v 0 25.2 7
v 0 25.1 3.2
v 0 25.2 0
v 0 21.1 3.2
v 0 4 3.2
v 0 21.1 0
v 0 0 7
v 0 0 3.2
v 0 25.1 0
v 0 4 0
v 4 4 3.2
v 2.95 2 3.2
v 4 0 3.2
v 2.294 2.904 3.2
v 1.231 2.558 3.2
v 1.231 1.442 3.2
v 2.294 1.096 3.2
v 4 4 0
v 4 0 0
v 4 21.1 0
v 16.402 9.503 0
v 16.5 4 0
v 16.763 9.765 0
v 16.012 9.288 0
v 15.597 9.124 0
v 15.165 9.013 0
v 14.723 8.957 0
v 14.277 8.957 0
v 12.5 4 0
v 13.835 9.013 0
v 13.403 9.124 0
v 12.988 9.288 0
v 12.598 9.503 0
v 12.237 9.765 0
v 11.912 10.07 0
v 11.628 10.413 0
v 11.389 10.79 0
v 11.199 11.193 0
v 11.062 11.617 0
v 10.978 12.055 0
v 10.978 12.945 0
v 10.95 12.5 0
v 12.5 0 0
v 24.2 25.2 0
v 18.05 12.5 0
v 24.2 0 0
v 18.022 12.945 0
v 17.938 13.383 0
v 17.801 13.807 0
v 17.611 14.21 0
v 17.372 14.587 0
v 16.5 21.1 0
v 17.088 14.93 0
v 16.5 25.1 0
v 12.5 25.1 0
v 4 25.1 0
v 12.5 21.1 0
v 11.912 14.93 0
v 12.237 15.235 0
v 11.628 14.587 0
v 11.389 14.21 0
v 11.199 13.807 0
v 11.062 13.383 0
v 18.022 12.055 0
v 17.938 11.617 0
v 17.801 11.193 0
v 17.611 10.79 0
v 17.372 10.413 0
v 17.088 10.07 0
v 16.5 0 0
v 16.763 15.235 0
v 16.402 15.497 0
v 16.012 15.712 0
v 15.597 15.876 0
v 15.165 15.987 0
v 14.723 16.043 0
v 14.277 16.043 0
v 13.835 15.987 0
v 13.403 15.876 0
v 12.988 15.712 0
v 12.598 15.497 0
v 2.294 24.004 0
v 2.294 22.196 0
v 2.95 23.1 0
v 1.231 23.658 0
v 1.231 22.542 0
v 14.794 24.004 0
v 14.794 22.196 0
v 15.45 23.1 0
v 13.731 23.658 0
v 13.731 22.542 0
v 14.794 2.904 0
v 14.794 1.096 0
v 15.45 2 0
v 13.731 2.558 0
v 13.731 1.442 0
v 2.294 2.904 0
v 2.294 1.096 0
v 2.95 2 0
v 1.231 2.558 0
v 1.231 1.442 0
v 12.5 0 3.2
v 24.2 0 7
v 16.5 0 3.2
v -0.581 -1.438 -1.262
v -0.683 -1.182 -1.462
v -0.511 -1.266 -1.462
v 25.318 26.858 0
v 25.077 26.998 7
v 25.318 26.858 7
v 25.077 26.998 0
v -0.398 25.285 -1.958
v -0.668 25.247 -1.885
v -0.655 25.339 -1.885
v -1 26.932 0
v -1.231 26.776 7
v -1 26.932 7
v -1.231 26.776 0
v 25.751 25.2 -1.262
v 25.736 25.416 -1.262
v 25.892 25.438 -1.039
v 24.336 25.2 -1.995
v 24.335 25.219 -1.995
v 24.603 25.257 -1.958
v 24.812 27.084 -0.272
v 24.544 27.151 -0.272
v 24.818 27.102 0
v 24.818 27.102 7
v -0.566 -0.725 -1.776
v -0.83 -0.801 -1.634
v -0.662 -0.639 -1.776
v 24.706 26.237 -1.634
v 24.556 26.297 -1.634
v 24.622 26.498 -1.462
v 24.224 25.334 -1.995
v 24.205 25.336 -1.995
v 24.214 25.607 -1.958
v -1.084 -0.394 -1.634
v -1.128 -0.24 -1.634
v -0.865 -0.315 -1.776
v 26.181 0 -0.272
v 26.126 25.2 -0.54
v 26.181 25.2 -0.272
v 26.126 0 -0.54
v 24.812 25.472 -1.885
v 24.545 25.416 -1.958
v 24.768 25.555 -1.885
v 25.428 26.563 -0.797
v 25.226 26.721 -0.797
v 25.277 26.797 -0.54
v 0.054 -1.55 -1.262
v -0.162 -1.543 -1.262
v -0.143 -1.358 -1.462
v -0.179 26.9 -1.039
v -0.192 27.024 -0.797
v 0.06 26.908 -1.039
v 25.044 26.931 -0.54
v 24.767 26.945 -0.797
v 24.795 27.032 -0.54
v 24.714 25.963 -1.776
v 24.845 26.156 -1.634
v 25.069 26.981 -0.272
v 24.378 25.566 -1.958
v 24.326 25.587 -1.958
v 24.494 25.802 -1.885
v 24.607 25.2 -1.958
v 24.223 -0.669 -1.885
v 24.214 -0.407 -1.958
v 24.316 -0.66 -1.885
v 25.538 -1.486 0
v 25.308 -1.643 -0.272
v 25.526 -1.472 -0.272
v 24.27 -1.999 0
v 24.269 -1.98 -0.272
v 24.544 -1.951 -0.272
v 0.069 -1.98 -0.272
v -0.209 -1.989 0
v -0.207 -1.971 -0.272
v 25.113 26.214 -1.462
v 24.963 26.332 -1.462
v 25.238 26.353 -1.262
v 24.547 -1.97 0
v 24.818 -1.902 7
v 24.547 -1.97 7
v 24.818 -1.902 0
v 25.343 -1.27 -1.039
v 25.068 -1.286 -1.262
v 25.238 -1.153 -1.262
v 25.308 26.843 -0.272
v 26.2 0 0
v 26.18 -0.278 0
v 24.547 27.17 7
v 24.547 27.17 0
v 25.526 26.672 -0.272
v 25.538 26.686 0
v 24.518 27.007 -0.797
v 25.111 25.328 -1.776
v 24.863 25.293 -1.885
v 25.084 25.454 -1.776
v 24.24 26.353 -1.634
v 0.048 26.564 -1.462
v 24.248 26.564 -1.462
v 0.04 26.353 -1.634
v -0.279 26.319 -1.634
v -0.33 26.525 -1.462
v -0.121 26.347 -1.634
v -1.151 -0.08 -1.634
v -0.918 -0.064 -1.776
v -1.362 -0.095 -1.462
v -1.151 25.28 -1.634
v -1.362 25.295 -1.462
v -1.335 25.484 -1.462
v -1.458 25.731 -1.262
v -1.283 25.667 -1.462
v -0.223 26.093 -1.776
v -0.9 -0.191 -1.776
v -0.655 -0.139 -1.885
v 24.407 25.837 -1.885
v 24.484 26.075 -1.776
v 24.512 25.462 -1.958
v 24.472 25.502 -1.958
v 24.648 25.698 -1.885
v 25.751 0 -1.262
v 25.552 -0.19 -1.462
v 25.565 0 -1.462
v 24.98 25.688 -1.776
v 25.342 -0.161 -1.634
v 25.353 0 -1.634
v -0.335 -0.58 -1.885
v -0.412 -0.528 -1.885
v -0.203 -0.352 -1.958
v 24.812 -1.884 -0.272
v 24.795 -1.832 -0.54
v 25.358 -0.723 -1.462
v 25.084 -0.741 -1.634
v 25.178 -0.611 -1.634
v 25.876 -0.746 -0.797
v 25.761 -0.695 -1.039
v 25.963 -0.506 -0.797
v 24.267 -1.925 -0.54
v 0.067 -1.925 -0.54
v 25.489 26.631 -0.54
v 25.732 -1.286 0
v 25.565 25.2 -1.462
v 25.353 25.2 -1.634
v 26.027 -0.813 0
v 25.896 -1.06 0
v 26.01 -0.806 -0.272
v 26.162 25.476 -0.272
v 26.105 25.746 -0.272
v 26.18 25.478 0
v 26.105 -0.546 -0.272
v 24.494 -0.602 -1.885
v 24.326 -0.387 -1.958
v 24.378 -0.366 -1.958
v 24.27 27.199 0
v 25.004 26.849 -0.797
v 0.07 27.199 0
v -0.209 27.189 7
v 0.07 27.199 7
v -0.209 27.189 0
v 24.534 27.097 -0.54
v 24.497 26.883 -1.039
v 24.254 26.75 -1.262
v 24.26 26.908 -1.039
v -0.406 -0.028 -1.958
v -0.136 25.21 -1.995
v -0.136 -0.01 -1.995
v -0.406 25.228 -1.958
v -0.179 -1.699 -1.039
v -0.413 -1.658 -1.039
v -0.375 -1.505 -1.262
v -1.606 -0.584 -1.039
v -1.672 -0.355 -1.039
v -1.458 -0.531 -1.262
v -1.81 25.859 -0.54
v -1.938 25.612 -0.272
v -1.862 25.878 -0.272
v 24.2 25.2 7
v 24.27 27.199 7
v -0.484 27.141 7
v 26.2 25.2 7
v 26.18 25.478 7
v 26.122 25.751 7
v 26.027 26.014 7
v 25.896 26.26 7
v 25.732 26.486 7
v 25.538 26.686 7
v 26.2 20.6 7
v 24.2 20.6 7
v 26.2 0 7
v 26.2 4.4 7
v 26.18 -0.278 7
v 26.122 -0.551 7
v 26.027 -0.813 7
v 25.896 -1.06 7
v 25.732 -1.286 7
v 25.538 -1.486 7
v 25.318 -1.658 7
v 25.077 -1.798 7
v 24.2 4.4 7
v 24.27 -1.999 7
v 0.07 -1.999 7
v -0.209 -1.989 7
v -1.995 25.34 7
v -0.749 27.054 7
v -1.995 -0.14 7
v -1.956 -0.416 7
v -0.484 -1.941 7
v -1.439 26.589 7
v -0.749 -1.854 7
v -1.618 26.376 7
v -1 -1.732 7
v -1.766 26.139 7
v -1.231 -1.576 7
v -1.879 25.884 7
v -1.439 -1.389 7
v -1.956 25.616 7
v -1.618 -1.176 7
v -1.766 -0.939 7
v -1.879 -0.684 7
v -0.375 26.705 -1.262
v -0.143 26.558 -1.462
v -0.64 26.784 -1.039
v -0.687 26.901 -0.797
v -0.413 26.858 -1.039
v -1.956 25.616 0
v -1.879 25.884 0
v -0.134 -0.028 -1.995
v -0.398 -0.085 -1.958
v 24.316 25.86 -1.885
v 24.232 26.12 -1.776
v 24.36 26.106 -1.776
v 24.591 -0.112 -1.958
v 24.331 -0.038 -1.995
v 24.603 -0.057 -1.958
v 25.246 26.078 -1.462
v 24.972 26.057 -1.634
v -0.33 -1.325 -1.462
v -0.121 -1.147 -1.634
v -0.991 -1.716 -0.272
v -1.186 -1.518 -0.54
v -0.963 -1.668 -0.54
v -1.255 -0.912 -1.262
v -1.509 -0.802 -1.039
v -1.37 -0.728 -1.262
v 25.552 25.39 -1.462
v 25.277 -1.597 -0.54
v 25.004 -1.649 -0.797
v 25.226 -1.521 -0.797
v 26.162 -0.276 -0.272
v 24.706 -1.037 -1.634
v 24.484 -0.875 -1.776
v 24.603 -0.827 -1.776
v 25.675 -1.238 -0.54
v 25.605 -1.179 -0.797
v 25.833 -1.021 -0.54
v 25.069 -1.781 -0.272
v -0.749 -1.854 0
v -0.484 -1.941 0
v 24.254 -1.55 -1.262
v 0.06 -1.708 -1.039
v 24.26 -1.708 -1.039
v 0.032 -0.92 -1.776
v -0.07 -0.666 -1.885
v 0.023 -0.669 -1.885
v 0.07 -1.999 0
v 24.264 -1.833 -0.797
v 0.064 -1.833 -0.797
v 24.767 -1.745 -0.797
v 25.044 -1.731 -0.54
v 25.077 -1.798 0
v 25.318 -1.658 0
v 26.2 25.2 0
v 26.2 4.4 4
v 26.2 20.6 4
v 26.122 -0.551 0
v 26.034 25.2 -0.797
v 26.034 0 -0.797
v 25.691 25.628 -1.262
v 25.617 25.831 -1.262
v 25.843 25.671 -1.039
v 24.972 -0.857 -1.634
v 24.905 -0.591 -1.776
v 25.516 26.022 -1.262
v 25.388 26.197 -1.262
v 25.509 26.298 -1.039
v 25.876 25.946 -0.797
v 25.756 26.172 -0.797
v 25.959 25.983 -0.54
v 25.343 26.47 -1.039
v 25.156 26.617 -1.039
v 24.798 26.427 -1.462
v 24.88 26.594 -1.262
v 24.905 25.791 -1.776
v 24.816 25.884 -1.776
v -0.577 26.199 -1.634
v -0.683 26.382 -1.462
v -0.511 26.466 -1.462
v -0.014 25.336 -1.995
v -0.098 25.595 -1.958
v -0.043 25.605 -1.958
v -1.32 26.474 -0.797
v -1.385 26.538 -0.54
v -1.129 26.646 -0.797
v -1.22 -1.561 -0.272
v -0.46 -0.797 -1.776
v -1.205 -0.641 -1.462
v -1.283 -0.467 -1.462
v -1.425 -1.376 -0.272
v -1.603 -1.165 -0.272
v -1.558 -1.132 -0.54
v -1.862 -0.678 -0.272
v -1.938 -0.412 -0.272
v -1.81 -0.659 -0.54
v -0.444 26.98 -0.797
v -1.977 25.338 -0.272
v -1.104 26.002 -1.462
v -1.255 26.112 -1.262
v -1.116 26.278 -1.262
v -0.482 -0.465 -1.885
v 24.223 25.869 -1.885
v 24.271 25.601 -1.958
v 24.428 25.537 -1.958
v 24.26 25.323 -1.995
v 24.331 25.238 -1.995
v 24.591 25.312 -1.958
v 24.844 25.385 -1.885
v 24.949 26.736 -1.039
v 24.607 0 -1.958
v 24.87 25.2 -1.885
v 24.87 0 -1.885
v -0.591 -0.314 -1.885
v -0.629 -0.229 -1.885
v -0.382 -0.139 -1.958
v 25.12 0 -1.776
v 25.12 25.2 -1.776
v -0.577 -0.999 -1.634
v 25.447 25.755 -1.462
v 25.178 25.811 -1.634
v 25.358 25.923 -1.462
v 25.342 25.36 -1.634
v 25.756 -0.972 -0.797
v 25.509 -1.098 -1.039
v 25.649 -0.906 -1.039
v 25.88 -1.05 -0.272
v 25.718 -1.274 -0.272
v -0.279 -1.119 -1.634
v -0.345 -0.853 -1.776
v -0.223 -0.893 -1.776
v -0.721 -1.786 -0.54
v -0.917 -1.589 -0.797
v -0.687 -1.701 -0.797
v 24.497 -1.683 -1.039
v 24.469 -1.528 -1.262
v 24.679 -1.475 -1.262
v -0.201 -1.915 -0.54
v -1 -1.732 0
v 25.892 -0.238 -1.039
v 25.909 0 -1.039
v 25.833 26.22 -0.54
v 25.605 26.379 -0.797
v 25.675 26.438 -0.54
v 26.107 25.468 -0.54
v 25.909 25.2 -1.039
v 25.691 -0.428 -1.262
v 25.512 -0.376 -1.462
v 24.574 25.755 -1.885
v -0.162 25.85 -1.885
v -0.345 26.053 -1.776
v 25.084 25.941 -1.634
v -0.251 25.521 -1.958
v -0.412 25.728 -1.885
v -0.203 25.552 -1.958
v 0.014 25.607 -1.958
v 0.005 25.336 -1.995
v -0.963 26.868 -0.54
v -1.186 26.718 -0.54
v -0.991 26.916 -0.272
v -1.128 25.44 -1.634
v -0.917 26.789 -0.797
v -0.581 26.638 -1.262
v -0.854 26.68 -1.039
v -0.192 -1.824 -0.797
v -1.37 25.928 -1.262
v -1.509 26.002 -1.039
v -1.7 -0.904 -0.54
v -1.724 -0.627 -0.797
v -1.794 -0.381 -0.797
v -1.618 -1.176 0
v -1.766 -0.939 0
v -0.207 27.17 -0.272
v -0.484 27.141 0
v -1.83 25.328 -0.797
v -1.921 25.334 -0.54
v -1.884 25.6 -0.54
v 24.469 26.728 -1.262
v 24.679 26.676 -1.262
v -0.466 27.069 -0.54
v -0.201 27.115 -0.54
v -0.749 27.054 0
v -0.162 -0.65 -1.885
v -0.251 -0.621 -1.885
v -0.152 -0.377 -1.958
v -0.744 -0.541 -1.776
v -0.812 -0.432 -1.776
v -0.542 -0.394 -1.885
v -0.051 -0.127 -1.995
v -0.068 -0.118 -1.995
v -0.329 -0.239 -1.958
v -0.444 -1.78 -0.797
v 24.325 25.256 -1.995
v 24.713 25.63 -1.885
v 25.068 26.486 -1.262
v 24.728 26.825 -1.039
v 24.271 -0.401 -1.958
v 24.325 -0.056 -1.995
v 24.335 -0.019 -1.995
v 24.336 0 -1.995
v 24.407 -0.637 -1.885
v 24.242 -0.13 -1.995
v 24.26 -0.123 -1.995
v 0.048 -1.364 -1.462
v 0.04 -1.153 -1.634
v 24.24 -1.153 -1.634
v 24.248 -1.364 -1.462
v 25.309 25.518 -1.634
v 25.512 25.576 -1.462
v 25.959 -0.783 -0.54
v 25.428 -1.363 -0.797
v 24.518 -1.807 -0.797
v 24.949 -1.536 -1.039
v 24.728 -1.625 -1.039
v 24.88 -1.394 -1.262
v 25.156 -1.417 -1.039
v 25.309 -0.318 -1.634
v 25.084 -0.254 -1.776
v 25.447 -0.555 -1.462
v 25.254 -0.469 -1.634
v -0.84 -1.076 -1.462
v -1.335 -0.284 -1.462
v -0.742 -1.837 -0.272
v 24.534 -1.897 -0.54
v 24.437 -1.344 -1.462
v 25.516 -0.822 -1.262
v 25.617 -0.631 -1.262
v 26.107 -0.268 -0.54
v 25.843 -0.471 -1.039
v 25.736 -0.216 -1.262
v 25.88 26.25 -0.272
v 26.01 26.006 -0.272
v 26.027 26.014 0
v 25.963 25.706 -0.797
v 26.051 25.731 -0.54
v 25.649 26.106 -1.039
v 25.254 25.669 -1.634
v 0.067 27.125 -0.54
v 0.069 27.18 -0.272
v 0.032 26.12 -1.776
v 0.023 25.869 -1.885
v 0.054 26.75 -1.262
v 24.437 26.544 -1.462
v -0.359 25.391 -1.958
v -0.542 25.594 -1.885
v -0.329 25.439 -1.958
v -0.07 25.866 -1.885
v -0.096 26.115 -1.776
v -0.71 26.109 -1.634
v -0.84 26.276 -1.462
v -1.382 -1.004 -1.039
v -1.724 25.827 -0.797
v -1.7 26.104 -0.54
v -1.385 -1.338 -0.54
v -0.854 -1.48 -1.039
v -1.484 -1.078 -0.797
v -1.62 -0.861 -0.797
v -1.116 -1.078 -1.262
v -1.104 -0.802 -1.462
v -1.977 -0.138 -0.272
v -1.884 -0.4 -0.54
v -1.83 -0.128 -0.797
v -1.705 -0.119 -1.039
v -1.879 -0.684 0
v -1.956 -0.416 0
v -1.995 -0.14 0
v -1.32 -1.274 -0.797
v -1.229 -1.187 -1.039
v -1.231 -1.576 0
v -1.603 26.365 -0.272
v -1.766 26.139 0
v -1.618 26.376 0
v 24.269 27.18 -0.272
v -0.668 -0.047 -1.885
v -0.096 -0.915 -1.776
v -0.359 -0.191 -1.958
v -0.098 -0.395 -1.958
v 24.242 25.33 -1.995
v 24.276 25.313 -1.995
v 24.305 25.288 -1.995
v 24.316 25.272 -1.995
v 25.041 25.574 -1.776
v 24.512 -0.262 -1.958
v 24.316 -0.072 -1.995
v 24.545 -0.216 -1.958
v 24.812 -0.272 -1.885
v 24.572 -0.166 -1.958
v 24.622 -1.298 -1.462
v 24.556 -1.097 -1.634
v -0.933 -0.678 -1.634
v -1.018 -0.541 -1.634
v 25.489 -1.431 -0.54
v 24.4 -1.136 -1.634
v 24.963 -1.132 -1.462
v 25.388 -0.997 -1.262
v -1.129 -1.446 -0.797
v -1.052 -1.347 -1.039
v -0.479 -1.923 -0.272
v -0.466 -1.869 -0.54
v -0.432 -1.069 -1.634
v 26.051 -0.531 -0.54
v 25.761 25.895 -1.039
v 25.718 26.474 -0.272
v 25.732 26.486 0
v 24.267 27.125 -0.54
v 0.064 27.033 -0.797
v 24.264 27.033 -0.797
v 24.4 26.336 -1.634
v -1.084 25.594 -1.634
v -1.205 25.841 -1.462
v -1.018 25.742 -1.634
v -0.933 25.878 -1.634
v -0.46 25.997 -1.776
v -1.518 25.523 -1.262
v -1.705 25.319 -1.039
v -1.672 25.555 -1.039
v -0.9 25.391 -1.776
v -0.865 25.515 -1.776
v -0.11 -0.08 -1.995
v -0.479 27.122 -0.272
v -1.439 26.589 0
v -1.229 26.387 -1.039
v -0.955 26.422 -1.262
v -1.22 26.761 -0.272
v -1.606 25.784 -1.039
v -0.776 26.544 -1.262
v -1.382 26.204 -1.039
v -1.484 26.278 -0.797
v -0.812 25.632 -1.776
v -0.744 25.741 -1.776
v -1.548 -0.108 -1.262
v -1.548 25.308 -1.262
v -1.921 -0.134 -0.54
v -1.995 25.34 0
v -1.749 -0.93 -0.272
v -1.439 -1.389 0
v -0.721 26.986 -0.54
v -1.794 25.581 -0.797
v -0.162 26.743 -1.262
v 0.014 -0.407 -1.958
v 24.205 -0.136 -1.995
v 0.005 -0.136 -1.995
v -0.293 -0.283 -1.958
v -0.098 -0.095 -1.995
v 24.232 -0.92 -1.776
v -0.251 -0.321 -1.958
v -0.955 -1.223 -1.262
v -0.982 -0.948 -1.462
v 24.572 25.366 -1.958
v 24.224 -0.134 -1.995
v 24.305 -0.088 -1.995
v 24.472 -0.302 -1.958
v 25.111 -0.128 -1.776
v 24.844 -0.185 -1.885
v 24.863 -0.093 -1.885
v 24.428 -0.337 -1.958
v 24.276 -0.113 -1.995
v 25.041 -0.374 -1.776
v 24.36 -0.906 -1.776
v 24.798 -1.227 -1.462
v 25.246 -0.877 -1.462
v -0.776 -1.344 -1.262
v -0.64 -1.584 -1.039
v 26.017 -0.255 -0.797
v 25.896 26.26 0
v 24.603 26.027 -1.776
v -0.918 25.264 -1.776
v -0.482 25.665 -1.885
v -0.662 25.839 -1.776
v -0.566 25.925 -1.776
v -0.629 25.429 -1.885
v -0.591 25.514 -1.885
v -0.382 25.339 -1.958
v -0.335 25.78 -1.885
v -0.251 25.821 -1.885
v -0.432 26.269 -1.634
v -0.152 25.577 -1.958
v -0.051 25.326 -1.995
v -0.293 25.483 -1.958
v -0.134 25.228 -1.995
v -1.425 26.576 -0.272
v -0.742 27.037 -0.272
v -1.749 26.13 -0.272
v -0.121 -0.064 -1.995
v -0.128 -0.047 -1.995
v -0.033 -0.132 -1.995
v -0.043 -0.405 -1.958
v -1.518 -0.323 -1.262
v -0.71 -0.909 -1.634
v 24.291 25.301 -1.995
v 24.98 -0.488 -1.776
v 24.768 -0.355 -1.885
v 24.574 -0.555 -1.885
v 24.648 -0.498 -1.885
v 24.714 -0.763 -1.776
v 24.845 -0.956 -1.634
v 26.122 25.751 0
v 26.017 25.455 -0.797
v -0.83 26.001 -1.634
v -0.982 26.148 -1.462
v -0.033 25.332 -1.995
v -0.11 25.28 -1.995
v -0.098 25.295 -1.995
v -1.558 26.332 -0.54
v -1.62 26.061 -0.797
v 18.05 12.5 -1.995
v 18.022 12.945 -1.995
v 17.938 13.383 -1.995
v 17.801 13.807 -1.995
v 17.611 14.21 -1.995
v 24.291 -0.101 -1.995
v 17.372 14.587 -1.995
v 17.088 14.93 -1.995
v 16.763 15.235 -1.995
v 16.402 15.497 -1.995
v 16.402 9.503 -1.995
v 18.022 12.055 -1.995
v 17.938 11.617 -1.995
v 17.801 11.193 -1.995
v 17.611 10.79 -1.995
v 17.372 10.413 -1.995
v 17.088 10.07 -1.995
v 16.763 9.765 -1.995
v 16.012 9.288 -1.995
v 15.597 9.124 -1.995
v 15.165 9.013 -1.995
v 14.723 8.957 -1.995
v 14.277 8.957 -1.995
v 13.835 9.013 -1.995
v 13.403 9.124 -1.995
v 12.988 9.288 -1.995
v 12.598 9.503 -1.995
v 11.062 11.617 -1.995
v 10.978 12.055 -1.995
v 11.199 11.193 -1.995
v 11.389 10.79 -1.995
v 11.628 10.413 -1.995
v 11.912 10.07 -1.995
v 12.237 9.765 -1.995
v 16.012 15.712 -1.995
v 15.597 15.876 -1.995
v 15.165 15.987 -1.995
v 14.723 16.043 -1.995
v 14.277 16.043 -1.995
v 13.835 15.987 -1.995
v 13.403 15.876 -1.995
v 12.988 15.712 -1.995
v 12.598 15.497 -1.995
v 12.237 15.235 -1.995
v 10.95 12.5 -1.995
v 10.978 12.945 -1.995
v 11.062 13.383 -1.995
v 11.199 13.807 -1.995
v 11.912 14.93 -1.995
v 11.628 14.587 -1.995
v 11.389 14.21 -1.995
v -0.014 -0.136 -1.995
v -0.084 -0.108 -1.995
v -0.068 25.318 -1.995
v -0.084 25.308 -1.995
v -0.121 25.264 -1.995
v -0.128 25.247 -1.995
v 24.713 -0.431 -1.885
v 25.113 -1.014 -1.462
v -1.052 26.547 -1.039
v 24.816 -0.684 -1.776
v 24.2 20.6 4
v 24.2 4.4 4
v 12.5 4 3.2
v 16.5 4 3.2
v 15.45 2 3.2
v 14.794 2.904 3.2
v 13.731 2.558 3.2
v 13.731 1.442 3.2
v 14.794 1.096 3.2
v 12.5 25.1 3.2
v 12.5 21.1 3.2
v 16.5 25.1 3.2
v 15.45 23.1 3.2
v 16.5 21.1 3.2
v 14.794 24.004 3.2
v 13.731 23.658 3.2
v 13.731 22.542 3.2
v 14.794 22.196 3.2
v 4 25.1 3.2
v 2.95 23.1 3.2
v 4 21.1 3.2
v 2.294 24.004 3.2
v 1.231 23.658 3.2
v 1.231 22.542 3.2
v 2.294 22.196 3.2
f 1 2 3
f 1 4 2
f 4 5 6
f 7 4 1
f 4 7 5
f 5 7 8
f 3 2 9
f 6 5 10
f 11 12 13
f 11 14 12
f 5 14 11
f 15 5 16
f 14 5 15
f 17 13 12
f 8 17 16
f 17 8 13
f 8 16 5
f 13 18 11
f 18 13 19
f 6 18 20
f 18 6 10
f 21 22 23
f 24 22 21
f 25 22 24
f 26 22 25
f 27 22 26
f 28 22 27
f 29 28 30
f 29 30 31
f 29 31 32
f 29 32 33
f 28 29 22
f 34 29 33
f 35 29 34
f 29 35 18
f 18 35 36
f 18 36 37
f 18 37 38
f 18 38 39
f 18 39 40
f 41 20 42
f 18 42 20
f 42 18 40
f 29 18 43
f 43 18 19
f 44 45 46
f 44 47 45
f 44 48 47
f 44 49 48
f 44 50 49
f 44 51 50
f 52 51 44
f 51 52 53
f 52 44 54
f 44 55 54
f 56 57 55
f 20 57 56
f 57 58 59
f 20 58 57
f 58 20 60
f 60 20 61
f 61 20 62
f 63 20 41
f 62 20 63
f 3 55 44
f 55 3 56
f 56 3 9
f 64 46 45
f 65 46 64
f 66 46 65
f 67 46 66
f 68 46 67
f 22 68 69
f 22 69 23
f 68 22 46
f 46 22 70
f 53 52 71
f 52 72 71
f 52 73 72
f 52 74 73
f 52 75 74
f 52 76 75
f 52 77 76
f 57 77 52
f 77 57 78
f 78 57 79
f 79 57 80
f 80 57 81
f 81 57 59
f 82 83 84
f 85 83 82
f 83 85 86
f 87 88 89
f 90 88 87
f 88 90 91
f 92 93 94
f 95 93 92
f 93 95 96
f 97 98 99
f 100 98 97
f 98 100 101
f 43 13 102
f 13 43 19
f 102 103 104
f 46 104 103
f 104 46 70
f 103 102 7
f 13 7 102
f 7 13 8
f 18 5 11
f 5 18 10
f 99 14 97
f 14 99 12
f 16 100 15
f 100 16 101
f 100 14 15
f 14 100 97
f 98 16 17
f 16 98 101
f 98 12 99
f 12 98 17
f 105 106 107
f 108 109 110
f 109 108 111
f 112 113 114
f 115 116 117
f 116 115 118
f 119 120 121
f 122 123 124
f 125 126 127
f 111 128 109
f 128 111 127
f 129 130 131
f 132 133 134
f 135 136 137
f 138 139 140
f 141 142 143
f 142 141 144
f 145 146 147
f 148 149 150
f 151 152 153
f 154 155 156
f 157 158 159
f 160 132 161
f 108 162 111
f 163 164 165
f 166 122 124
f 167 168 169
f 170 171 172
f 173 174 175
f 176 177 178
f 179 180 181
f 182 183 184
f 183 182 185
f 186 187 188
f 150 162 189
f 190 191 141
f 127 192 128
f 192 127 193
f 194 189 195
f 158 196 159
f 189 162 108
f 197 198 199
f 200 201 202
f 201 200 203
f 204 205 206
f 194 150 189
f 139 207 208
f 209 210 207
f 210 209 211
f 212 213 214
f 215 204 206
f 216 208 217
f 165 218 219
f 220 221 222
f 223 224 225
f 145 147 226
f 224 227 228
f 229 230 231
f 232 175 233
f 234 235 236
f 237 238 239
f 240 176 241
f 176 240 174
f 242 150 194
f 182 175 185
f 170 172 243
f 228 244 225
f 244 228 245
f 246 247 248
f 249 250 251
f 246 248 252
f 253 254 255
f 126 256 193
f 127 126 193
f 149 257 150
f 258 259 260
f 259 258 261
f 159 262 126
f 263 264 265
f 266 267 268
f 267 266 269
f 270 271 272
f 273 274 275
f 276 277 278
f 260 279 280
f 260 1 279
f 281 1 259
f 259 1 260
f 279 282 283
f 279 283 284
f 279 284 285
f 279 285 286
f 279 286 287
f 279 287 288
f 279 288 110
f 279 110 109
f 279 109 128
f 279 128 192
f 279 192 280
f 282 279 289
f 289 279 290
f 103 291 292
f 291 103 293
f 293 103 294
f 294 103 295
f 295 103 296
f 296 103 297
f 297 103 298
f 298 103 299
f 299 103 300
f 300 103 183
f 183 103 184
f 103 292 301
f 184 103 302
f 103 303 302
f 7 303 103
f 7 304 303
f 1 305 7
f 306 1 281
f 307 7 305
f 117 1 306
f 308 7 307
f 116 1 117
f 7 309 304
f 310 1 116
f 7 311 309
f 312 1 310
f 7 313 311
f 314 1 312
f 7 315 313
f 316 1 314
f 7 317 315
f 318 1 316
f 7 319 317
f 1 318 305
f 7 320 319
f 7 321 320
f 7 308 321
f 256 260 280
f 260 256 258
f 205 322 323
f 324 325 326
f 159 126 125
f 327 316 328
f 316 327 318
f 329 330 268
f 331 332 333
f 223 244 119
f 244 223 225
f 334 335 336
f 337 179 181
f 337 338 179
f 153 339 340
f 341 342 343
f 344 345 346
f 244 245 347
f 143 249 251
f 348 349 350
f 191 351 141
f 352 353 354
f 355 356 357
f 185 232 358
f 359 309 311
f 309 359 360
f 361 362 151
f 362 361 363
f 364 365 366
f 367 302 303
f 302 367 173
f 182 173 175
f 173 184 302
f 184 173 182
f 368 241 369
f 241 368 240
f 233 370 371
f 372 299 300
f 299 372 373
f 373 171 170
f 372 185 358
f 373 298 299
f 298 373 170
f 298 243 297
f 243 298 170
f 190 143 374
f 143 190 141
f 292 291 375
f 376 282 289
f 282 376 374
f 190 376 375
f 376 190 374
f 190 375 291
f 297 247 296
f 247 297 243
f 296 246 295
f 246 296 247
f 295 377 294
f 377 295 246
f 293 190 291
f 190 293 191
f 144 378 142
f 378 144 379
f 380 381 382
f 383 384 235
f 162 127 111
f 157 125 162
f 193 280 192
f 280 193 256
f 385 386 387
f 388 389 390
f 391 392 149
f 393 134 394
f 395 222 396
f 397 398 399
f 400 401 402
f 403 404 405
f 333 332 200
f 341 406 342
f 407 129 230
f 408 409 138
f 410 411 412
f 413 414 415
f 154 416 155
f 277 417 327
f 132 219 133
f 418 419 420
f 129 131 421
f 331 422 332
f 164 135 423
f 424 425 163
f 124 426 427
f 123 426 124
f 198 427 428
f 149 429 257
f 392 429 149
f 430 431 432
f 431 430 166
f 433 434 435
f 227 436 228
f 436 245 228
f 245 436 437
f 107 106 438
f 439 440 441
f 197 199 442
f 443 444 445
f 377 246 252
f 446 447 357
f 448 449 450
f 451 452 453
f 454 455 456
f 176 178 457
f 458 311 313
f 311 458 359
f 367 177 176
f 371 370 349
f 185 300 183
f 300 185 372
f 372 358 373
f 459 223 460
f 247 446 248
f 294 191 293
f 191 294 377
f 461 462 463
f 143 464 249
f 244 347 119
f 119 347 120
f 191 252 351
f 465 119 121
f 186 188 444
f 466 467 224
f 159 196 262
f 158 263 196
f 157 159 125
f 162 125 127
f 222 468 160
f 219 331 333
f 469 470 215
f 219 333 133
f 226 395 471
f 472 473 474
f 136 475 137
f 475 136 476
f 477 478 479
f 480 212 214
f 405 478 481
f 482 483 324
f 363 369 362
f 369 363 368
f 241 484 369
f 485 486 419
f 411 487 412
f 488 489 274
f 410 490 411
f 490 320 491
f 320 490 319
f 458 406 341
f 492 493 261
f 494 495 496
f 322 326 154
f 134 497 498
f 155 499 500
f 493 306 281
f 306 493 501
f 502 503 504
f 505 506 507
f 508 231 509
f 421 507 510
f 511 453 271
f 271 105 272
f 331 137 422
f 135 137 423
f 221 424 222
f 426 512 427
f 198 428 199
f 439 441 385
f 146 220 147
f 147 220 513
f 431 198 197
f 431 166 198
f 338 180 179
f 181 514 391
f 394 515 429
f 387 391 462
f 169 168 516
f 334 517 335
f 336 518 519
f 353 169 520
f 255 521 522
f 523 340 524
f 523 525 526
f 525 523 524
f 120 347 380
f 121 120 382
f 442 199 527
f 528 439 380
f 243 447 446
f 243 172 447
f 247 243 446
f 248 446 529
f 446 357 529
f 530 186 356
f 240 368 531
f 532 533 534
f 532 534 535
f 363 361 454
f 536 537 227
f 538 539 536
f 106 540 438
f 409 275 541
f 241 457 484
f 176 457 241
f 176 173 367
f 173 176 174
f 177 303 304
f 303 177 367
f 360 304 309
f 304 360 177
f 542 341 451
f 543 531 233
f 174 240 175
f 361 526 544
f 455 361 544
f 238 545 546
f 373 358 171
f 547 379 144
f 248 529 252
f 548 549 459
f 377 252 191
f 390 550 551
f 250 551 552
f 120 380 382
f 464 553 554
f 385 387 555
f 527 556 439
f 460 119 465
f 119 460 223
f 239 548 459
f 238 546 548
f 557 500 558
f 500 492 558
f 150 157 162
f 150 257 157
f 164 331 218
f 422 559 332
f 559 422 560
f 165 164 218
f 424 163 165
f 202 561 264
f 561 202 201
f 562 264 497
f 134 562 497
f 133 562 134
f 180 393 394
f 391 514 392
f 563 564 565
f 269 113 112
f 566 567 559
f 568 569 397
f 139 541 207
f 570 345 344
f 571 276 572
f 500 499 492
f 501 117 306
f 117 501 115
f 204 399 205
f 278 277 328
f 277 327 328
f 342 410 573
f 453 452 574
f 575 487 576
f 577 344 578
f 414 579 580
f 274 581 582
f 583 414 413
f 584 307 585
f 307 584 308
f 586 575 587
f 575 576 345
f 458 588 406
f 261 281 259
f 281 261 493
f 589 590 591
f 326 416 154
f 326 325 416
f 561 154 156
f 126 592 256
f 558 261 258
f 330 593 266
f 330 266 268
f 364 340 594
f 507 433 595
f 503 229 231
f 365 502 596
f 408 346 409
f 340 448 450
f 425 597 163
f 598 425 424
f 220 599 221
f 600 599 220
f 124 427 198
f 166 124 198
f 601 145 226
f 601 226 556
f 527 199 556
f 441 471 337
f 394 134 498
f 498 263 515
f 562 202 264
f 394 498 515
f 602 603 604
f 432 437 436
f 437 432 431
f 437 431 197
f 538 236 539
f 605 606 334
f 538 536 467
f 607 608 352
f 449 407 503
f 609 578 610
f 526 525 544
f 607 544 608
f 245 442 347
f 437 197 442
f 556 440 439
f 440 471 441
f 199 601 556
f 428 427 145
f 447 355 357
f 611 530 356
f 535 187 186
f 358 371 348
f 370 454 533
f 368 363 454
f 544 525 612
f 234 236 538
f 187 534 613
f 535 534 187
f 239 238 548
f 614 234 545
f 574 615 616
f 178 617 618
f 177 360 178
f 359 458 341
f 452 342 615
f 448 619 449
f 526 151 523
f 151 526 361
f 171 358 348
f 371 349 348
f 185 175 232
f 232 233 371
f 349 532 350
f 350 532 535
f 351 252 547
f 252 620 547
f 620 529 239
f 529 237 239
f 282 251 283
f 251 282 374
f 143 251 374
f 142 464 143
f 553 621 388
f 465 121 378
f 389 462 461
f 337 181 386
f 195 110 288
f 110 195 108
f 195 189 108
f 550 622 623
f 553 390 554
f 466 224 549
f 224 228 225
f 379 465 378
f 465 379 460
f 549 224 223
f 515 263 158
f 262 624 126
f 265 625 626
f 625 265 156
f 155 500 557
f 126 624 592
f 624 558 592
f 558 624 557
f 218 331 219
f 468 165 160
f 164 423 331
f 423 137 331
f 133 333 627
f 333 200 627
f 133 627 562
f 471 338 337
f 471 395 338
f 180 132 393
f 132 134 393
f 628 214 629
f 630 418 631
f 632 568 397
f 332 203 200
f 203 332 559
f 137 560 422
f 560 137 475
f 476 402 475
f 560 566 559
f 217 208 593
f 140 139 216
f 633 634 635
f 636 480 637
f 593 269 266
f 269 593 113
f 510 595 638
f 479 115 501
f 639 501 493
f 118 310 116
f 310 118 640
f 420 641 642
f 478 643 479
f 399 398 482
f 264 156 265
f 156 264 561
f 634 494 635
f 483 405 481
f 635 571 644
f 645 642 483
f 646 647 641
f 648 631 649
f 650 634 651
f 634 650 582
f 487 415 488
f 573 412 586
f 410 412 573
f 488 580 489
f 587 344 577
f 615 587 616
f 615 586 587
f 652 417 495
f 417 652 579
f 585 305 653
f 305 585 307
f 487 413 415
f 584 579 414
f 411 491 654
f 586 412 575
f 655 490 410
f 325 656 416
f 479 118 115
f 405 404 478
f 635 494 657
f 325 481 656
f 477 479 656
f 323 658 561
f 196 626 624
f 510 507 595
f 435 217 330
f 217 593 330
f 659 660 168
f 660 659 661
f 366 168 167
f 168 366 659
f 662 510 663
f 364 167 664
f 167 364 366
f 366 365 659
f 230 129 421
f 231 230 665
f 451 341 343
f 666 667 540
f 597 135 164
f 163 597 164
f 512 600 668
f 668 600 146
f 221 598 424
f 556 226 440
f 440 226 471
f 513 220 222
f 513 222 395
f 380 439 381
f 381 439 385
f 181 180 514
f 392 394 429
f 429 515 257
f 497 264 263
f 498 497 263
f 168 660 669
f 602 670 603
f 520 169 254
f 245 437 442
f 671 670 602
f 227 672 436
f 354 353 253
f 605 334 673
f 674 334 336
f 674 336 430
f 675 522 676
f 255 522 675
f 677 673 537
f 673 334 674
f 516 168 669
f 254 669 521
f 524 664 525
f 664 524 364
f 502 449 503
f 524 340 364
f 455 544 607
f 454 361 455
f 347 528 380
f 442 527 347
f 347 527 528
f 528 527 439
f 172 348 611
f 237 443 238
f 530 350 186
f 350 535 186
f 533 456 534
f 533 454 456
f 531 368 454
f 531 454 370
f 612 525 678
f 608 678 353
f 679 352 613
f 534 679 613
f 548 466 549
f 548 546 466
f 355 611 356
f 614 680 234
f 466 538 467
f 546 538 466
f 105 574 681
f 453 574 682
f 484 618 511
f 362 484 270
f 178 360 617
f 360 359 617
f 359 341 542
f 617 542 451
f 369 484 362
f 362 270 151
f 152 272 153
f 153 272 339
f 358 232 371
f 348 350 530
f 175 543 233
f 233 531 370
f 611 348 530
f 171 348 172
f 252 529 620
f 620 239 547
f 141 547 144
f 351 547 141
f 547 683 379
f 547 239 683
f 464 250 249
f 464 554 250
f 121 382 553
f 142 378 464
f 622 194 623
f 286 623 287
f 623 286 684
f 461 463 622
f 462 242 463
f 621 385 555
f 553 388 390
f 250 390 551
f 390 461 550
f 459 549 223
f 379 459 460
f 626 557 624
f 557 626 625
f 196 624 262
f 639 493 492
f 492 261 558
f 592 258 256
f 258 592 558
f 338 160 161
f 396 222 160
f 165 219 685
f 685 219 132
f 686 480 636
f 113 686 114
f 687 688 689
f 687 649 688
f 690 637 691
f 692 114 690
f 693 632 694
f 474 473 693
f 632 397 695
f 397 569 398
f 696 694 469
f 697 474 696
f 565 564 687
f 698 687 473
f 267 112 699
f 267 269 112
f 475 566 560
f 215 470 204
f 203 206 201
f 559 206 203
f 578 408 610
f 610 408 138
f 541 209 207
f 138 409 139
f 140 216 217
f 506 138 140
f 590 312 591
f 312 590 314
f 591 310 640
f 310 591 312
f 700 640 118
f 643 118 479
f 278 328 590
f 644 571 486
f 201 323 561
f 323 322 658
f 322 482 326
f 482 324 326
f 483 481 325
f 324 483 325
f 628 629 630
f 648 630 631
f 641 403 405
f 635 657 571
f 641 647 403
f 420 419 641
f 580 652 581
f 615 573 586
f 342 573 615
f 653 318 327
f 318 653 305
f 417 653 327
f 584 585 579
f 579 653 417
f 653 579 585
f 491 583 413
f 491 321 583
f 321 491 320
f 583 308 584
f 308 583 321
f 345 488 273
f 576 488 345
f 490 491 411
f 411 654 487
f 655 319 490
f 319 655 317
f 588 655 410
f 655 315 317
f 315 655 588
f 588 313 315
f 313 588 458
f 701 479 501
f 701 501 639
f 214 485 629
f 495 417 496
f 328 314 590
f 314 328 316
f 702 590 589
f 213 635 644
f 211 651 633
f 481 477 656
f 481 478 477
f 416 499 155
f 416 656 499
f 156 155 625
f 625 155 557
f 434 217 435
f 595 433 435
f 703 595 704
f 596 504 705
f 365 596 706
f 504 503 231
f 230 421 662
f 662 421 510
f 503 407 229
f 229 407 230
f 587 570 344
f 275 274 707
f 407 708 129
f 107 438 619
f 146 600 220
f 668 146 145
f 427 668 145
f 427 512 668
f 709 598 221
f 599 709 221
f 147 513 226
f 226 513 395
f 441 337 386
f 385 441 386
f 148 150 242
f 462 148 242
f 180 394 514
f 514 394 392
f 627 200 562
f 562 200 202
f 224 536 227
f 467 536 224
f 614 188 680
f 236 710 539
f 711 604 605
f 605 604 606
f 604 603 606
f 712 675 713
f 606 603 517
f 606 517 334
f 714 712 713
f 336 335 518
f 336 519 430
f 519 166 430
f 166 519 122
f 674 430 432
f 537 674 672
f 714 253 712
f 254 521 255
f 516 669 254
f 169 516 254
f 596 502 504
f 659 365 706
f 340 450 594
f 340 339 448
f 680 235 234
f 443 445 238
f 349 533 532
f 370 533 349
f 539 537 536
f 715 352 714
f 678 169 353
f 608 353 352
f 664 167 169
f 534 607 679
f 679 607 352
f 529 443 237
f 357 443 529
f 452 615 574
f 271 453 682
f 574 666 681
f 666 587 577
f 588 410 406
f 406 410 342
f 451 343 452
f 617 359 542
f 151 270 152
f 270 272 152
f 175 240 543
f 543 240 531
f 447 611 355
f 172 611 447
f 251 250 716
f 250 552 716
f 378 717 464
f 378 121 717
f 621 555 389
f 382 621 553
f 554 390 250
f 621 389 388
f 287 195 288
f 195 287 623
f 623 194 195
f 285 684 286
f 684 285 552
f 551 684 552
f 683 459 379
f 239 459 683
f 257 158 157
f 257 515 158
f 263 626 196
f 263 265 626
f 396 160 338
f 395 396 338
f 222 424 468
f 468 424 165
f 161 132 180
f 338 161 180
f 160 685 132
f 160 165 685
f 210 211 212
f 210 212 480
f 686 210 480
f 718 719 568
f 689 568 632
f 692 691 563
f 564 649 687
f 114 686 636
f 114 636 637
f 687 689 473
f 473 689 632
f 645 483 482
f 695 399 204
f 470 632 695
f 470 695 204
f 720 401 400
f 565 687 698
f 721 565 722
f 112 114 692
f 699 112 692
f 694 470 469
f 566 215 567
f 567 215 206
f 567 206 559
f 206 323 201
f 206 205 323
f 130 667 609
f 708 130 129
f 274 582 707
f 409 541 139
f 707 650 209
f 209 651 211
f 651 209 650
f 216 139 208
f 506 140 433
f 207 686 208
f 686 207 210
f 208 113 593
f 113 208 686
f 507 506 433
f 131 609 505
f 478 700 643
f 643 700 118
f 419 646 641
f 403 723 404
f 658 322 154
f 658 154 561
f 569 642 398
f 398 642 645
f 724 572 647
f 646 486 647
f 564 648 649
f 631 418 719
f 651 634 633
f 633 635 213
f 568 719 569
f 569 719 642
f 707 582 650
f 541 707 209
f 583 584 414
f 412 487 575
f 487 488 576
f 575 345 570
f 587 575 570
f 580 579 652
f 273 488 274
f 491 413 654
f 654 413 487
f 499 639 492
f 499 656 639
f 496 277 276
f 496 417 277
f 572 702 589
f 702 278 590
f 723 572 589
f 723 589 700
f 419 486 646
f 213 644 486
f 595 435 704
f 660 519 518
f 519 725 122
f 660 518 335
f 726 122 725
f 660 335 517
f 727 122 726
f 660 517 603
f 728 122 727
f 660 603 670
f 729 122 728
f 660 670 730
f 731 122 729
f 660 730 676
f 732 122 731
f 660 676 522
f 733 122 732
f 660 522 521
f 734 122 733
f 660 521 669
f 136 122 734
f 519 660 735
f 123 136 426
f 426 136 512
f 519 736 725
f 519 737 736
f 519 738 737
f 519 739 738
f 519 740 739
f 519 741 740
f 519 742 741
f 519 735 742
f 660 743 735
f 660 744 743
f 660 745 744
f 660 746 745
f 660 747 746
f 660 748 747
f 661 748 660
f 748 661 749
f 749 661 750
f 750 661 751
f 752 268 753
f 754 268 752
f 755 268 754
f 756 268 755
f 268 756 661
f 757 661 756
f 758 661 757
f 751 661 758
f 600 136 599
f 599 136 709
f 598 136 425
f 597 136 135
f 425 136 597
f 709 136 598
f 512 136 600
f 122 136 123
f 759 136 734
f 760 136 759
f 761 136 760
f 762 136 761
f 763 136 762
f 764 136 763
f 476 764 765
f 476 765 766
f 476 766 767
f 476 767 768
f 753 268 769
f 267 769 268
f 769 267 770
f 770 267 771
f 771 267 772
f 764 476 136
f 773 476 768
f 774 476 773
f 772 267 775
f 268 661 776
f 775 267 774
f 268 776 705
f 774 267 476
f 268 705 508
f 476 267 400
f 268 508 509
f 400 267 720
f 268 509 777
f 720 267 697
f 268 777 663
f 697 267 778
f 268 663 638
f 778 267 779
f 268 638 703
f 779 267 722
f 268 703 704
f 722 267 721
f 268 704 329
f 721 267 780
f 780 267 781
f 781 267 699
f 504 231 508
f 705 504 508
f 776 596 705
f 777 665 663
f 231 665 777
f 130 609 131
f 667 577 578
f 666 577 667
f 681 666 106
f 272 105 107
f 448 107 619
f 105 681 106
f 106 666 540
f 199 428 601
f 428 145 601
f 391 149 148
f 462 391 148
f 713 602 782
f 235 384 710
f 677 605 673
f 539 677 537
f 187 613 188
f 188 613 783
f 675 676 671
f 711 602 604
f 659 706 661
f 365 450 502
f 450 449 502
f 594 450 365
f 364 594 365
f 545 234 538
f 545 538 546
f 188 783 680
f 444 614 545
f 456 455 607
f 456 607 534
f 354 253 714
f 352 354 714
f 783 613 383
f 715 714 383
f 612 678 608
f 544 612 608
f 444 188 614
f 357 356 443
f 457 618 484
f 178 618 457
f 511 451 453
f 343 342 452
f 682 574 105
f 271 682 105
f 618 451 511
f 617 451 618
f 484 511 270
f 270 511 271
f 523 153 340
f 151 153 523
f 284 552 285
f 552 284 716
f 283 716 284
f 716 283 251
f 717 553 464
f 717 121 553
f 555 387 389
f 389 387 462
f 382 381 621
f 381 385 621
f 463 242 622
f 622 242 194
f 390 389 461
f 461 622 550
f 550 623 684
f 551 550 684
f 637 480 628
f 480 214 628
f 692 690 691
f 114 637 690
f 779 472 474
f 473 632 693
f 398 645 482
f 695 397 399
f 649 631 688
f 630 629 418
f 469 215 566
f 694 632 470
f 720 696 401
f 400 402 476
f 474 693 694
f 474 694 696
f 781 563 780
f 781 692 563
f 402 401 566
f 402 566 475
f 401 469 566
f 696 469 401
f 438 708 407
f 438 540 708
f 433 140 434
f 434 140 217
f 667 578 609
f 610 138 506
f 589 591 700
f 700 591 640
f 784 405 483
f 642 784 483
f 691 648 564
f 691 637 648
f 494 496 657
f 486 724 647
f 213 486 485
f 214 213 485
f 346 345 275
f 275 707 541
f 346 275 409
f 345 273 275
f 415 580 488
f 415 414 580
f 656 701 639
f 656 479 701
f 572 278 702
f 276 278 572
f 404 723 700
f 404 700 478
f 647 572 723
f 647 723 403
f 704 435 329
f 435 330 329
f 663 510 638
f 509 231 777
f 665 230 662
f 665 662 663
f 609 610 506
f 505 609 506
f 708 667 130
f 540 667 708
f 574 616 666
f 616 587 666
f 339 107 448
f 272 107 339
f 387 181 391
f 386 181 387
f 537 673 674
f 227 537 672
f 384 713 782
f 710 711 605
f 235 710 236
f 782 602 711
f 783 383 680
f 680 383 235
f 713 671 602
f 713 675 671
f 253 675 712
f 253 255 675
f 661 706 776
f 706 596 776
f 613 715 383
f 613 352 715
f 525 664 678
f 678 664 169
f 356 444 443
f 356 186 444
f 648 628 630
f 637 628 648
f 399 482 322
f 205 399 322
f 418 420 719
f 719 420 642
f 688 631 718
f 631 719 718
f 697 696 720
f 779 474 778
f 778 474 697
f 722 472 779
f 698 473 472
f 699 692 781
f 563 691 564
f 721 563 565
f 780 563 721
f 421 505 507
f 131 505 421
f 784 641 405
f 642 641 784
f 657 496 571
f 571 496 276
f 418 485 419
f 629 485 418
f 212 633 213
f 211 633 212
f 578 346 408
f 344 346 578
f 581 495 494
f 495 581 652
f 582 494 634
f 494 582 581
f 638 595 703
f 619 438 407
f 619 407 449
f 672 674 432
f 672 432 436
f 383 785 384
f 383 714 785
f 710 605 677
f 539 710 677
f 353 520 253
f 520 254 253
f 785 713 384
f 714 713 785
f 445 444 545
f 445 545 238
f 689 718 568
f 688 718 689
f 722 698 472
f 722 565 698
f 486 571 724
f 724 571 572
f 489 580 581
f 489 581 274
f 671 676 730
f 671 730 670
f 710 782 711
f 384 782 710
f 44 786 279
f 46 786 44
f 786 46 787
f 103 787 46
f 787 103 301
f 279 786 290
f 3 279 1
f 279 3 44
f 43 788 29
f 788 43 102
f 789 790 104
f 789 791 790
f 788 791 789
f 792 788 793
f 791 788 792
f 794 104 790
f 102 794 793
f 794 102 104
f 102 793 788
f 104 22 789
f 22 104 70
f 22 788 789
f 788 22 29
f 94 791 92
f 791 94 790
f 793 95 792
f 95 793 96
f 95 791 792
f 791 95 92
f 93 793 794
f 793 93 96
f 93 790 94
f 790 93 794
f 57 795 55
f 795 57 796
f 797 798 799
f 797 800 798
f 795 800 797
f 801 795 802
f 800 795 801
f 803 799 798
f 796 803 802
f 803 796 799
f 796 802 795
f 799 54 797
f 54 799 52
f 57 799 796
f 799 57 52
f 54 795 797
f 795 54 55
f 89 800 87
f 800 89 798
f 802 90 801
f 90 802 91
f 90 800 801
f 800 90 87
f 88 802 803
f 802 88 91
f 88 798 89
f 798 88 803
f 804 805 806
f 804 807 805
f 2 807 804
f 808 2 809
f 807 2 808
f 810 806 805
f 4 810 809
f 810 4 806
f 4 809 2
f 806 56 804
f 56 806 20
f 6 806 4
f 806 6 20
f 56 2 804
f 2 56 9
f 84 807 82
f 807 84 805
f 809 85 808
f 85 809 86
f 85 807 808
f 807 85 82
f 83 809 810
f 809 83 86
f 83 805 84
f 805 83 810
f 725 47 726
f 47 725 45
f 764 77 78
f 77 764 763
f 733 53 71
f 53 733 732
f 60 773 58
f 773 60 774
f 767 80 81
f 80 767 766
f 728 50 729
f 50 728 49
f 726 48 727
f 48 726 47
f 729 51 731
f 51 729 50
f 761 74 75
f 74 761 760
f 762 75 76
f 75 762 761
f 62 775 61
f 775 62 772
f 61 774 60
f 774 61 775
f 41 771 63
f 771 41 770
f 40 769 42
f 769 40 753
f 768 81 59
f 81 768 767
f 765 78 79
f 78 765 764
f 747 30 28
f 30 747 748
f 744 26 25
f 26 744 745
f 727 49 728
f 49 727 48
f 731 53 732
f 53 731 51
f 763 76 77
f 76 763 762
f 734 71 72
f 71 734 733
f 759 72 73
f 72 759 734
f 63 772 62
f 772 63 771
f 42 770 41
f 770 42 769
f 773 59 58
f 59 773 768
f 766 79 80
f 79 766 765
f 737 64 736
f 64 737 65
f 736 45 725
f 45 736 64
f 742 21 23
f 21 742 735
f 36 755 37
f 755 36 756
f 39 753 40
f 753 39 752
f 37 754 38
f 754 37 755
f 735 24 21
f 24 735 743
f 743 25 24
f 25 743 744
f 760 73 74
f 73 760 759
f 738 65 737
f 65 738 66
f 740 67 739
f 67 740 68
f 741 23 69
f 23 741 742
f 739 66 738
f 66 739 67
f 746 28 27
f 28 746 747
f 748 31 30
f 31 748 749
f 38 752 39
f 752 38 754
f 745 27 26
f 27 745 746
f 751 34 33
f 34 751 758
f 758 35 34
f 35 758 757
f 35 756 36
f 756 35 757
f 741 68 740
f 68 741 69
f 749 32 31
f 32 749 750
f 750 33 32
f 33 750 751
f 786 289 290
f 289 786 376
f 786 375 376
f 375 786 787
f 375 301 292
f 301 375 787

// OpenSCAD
mink_r_ = 2;
luft = 0.1;

screw_d = 2;

plate_width = 25;
plate_length = 24;
plate_elements_height = 4.2 - 1;
plate_whole_height = 7;

stand_width = 4;

lens_hole_d = 7;
lens_window_x = plate_length - 9.5;
lens_window_y = plate_width / 2;

screw_holes_d = screw_d - luft;
holes_d = screw_d + luft;

cable_width = 16;
cable_step = 3;

module camera_outer_case() {
    difference() {
        // outer outline
        minkowski() {
            cube([plate_length + 2 * luft, plate_width + 2 * luft, plate_whole_height]);
                
            difference () {
                sphere(r=mink_r_, $fn=45);
                translate ([-mink_r_, -mink_r_, 0])
                    cube([2 * mink_r_, 2 * mink_r_, 2 * mink_r_]);
            }
        }
        
        cube([plate_length + 2 * luft, plate_width + 2 * luft, plate_whole_height]);
    }
}

module screw_stand() {
    difference() {
        cube([stand_width, stand_width, plate_elements_height]);
        translate([stand_width / 2, stand_width / 2, 0])
            cylinder(d=screw_holes_d, plate_elements_height);
    }
}

module camera_case() {
    difference() {
        union() {
            camera_outer_case();
            screw_stand();
            translate([lens_window_x - stand_width / 2, 0, 0])
                screw_stand();
            translate([lens_window_x - stand_width / 2, plate_width - stand_width + luft, 0])
                screw_stand();
            translate([0, plate_width - stand_width + luft, 0])
                screw_stand();
        }
        translate([lens_window_x, lens_window_y, - mink_r_])
            cylinder(d=lens_hole_d + luft, h=mink_r_, $fn=50);
        translate([plate_length + luft, (plate_width - cable_width) / 2 - luft, plate_whole_height - cable_step])
            cube([mink_r_ + luft, cable_width + 2 * luft, cable_step]);
    }
}

camera_case();
